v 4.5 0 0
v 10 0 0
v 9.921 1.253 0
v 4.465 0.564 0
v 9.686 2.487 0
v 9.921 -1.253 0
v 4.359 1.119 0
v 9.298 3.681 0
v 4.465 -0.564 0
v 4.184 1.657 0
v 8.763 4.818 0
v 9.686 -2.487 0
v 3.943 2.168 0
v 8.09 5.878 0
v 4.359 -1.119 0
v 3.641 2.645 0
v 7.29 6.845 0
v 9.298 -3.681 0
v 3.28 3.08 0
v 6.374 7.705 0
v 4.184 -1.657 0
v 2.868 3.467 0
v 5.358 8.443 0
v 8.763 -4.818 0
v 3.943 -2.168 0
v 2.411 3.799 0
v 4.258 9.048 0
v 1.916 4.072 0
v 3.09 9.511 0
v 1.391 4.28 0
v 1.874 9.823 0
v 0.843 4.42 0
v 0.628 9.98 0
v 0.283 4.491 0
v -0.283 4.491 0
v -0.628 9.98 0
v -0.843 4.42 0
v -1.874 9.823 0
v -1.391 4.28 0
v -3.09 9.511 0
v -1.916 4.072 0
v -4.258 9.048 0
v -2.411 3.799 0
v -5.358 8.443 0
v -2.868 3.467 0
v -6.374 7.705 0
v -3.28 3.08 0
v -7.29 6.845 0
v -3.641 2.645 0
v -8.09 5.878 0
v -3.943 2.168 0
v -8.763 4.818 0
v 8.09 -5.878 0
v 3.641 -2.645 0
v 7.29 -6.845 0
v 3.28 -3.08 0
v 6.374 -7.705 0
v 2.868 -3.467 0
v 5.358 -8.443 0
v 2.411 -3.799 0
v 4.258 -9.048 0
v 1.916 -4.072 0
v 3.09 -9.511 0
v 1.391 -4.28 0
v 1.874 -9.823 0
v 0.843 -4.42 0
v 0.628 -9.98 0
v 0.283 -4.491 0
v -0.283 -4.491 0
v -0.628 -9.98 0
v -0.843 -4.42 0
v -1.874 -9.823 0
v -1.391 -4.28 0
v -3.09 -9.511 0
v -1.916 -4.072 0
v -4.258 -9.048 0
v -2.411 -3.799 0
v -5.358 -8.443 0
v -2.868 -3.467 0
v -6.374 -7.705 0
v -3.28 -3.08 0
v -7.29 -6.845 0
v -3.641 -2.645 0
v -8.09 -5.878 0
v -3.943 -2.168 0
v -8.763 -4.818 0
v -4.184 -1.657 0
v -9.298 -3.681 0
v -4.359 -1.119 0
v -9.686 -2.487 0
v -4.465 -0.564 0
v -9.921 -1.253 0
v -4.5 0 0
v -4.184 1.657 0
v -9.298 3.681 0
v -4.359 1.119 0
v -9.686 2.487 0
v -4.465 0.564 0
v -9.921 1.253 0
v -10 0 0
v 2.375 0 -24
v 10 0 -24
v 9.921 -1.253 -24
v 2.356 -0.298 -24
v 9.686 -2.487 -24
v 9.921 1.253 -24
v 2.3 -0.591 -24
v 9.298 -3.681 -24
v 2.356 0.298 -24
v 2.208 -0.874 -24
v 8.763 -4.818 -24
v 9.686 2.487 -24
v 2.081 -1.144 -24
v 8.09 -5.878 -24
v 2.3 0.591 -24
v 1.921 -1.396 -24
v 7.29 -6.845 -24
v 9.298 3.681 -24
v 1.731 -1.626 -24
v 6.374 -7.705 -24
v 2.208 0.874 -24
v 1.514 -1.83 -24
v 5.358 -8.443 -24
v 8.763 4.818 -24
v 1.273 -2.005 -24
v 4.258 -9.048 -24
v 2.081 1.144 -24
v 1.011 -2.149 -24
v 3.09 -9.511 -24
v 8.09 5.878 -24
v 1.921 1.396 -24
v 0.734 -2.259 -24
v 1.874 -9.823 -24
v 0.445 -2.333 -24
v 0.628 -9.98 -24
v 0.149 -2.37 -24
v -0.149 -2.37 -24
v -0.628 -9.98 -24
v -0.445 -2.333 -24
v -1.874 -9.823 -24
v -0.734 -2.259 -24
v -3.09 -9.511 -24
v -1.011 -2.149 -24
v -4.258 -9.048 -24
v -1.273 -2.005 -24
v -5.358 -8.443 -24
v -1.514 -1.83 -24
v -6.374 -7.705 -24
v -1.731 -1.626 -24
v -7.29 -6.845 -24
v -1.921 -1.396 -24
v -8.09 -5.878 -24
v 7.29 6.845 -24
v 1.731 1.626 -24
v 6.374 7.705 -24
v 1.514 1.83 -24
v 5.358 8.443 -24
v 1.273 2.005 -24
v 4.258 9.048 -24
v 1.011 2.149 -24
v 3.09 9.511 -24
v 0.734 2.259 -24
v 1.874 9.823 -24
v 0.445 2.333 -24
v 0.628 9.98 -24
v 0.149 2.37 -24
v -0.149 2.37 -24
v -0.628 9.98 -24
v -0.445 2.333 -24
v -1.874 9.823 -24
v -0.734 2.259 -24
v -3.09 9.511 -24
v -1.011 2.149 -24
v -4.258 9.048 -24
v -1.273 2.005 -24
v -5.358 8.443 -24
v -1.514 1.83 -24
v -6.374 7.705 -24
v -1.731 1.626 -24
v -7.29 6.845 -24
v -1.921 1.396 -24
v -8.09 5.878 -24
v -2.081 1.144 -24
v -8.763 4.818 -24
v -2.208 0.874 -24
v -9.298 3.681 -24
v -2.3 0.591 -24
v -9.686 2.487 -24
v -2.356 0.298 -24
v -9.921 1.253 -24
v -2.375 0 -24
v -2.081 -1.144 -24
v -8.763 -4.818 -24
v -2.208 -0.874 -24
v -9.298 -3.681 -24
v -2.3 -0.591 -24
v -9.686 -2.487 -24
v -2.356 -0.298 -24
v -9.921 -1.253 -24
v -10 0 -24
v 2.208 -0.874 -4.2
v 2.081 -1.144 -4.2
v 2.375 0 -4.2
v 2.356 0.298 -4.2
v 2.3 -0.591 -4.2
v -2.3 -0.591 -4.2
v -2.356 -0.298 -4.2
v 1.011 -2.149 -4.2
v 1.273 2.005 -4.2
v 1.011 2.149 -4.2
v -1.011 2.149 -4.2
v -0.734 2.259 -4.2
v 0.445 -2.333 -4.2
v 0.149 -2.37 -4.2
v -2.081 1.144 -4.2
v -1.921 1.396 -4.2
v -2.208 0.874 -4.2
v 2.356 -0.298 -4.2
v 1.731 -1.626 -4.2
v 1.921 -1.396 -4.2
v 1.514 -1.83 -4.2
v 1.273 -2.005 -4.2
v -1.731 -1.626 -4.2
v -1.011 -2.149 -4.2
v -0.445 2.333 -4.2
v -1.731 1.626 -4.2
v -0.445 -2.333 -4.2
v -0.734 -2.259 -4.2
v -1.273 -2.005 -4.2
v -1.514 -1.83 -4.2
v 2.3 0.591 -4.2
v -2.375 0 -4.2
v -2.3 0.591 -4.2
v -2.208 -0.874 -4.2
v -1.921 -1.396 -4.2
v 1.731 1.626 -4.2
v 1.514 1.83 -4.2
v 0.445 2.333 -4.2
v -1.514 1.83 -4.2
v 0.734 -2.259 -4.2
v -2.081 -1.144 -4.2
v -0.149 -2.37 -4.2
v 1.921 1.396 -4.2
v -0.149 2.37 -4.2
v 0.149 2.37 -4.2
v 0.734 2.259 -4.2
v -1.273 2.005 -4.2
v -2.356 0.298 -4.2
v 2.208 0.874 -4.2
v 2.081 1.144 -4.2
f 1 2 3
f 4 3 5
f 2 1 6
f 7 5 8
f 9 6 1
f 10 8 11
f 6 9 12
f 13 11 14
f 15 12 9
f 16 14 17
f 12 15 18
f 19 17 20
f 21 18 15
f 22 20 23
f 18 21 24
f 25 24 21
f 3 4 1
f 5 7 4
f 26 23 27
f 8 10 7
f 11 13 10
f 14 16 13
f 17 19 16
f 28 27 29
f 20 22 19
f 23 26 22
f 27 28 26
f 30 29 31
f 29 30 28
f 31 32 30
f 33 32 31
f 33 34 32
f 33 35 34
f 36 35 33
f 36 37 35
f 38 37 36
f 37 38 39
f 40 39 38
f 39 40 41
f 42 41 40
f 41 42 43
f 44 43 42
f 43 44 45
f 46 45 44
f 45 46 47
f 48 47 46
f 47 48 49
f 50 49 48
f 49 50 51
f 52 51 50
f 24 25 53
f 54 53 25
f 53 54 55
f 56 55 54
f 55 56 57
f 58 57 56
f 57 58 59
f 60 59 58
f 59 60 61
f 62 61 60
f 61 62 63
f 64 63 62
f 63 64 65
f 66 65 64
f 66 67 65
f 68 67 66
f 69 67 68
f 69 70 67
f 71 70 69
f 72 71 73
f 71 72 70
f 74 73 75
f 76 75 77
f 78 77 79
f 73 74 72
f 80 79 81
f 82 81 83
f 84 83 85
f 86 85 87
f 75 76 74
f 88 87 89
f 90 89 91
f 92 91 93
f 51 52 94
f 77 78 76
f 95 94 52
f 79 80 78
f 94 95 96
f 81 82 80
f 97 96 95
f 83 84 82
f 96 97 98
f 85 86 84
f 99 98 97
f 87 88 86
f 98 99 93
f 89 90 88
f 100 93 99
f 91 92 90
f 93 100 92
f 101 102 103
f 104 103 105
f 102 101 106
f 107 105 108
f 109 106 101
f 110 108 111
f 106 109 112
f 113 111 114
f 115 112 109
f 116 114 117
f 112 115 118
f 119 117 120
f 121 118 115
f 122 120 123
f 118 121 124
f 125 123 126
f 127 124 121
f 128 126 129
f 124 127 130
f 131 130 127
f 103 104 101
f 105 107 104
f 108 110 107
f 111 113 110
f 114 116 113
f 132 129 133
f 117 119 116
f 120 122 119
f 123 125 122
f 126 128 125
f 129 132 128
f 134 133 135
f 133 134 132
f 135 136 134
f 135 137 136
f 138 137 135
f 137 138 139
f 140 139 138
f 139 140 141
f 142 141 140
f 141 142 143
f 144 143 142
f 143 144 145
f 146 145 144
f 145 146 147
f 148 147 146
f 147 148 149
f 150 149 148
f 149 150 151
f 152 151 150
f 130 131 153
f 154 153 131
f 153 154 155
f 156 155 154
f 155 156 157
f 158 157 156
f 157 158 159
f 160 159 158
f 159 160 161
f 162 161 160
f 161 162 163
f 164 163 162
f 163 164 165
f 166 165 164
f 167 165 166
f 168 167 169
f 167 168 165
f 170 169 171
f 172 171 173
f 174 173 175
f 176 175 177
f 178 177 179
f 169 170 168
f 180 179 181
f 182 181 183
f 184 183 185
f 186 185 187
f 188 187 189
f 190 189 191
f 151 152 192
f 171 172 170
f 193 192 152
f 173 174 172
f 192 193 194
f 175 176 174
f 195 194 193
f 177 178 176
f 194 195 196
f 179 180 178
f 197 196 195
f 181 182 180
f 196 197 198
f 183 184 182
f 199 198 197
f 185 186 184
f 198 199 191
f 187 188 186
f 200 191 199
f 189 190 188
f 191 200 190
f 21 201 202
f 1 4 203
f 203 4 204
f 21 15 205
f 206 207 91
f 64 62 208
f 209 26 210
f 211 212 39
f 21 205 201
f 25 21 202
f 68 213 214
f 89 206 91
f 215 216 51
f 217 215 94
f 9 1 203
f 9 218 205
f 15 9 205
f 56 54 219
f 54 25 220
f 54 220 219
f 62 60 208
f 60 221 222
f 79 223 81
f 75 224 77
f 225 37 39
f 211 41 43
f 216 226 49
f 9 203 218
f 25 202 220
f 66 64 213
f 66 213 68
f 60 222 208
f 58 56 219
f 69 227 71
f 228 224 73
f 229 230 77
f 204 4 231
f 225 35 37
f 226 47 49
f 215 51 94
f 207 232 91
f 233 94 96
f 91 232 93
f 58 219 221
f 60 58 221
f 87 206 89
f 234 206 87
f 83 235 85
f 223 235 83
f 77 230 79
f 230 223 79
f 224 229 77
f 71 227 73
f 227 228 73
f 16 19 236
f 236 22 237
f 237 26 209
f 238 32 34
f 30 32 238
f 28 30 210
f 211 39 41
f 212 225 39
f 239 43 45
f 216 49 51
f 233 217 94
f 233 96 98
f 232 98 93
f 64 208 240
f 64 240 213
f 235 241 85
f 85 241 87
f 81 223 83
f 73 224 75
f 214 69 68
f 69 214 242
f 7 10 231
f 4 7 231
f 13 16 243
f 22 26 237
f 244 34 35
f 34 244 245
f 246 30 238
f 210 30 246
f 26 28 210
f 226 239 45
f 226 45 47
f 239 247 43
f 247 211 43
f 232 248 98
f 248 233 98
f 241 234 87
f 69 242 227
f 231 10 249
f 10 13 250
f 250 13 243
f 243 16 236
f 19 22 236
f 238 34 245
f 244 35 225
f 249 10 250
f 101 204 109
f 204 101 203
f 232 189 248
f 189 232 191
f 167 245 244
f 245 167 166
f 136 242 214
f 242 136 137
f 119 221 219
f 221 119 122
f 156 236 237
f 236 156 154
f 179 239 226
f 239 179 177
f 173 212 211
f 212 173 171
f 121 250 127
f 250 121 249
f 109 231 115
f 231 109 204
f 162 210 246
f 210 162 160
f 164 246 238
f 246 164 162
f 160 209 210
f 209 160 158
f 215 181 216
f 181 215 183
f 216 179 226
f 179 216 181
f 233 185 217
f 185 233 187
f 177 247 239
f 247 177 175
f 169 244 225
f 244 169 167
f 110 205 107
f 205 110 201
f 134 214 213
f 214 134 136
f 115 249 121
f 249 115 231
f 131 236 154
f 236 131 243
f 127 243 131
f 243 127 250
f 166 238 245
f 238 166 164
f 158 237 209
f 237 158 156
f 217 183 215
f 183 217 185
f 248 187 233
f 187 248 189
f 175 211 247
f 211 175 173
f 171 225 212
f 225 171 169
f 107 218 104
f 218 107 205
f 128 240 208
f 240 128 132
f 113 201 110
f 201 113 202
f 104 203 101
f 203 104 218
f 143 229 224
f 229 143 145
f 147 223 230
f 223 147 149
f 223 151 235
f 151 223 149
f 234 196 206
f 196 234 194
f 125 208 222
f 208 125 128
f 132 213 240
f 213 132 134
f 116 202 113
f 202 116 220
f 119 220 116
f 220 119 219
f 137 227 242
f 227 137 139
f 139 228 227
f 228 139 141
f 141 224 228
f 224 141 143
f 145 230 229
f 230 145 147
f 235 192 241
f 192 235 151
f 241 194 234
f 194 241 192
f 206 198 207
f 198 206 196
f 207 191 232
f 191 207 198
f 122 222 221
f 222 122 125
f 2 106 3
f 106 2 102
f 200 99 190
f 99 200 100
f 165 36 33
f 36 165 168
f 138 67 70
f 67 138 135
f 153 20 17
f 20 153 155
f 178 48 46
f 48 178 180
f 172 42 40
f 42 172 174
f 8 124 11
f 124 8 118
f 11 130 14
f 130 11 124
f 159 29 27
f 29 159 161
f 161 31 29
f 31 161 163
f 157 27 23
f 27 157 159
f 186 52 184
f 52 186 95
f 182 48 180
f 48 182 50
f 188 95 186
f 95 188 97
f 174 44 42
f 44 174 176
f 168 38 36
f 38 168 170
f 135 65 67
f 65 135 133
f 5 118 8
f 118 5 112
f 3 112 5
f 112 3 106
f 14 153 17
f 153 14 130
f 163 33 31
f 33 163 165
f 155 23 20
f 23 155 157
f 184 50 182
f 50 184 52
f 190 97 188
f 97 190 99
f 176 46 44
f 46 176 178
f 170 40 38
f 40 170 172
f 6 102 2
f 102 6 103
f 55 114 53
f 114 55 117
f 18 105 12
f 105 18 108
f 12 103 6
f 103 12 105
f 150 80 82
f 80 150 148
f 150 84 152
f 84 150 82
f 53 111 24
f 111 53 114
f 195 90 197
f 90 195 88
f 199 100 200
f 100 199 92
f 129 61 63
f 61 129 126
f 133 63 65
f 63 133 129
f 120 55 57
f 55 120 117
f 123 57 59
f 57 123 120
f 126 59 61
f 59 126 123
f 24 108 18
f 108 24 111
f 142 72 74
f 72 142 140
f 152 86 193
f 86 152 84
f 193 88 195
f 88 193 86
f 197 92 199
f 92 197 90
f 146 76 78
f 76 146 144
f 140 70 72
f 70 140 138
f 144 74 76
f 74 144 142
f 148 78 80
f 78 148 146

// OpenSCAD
$fn = 50;


difference() {
	union() {
		translate(v = [0, 0, -24.0000000000]) {
			cylinder(h = 24, r = 10.0000000000);
		}
		cylinder(h = 0, r = 19.0000000000);
	}
	union() {
		translate(v = [0, 0, 0]) {
			rotate(a = [0, 0, 0]) {
				difference() {
					union() {
						#translate(v = [0, 0, -24.0000000000]) {
							cylinder(h = 24, r = 2.2500000000);
						}
						#translate(v = [0, 0, -4.2000000000]) {
							cylinder(h = 4.2000000000, r1 = 2.3750000000, r2 = 4.5000000000);
						}
						#translate(v = [0, 0, -24.0000000000]) {
							cylinder(h = 24, r = 2.3750000000);
						}
						#translate(v = [0, 0, -24.0000000000]) {
							cylinder(h = 24, r = 2.2500000000);
						}
					}
					union();
				}
			}
		}
	}
}
